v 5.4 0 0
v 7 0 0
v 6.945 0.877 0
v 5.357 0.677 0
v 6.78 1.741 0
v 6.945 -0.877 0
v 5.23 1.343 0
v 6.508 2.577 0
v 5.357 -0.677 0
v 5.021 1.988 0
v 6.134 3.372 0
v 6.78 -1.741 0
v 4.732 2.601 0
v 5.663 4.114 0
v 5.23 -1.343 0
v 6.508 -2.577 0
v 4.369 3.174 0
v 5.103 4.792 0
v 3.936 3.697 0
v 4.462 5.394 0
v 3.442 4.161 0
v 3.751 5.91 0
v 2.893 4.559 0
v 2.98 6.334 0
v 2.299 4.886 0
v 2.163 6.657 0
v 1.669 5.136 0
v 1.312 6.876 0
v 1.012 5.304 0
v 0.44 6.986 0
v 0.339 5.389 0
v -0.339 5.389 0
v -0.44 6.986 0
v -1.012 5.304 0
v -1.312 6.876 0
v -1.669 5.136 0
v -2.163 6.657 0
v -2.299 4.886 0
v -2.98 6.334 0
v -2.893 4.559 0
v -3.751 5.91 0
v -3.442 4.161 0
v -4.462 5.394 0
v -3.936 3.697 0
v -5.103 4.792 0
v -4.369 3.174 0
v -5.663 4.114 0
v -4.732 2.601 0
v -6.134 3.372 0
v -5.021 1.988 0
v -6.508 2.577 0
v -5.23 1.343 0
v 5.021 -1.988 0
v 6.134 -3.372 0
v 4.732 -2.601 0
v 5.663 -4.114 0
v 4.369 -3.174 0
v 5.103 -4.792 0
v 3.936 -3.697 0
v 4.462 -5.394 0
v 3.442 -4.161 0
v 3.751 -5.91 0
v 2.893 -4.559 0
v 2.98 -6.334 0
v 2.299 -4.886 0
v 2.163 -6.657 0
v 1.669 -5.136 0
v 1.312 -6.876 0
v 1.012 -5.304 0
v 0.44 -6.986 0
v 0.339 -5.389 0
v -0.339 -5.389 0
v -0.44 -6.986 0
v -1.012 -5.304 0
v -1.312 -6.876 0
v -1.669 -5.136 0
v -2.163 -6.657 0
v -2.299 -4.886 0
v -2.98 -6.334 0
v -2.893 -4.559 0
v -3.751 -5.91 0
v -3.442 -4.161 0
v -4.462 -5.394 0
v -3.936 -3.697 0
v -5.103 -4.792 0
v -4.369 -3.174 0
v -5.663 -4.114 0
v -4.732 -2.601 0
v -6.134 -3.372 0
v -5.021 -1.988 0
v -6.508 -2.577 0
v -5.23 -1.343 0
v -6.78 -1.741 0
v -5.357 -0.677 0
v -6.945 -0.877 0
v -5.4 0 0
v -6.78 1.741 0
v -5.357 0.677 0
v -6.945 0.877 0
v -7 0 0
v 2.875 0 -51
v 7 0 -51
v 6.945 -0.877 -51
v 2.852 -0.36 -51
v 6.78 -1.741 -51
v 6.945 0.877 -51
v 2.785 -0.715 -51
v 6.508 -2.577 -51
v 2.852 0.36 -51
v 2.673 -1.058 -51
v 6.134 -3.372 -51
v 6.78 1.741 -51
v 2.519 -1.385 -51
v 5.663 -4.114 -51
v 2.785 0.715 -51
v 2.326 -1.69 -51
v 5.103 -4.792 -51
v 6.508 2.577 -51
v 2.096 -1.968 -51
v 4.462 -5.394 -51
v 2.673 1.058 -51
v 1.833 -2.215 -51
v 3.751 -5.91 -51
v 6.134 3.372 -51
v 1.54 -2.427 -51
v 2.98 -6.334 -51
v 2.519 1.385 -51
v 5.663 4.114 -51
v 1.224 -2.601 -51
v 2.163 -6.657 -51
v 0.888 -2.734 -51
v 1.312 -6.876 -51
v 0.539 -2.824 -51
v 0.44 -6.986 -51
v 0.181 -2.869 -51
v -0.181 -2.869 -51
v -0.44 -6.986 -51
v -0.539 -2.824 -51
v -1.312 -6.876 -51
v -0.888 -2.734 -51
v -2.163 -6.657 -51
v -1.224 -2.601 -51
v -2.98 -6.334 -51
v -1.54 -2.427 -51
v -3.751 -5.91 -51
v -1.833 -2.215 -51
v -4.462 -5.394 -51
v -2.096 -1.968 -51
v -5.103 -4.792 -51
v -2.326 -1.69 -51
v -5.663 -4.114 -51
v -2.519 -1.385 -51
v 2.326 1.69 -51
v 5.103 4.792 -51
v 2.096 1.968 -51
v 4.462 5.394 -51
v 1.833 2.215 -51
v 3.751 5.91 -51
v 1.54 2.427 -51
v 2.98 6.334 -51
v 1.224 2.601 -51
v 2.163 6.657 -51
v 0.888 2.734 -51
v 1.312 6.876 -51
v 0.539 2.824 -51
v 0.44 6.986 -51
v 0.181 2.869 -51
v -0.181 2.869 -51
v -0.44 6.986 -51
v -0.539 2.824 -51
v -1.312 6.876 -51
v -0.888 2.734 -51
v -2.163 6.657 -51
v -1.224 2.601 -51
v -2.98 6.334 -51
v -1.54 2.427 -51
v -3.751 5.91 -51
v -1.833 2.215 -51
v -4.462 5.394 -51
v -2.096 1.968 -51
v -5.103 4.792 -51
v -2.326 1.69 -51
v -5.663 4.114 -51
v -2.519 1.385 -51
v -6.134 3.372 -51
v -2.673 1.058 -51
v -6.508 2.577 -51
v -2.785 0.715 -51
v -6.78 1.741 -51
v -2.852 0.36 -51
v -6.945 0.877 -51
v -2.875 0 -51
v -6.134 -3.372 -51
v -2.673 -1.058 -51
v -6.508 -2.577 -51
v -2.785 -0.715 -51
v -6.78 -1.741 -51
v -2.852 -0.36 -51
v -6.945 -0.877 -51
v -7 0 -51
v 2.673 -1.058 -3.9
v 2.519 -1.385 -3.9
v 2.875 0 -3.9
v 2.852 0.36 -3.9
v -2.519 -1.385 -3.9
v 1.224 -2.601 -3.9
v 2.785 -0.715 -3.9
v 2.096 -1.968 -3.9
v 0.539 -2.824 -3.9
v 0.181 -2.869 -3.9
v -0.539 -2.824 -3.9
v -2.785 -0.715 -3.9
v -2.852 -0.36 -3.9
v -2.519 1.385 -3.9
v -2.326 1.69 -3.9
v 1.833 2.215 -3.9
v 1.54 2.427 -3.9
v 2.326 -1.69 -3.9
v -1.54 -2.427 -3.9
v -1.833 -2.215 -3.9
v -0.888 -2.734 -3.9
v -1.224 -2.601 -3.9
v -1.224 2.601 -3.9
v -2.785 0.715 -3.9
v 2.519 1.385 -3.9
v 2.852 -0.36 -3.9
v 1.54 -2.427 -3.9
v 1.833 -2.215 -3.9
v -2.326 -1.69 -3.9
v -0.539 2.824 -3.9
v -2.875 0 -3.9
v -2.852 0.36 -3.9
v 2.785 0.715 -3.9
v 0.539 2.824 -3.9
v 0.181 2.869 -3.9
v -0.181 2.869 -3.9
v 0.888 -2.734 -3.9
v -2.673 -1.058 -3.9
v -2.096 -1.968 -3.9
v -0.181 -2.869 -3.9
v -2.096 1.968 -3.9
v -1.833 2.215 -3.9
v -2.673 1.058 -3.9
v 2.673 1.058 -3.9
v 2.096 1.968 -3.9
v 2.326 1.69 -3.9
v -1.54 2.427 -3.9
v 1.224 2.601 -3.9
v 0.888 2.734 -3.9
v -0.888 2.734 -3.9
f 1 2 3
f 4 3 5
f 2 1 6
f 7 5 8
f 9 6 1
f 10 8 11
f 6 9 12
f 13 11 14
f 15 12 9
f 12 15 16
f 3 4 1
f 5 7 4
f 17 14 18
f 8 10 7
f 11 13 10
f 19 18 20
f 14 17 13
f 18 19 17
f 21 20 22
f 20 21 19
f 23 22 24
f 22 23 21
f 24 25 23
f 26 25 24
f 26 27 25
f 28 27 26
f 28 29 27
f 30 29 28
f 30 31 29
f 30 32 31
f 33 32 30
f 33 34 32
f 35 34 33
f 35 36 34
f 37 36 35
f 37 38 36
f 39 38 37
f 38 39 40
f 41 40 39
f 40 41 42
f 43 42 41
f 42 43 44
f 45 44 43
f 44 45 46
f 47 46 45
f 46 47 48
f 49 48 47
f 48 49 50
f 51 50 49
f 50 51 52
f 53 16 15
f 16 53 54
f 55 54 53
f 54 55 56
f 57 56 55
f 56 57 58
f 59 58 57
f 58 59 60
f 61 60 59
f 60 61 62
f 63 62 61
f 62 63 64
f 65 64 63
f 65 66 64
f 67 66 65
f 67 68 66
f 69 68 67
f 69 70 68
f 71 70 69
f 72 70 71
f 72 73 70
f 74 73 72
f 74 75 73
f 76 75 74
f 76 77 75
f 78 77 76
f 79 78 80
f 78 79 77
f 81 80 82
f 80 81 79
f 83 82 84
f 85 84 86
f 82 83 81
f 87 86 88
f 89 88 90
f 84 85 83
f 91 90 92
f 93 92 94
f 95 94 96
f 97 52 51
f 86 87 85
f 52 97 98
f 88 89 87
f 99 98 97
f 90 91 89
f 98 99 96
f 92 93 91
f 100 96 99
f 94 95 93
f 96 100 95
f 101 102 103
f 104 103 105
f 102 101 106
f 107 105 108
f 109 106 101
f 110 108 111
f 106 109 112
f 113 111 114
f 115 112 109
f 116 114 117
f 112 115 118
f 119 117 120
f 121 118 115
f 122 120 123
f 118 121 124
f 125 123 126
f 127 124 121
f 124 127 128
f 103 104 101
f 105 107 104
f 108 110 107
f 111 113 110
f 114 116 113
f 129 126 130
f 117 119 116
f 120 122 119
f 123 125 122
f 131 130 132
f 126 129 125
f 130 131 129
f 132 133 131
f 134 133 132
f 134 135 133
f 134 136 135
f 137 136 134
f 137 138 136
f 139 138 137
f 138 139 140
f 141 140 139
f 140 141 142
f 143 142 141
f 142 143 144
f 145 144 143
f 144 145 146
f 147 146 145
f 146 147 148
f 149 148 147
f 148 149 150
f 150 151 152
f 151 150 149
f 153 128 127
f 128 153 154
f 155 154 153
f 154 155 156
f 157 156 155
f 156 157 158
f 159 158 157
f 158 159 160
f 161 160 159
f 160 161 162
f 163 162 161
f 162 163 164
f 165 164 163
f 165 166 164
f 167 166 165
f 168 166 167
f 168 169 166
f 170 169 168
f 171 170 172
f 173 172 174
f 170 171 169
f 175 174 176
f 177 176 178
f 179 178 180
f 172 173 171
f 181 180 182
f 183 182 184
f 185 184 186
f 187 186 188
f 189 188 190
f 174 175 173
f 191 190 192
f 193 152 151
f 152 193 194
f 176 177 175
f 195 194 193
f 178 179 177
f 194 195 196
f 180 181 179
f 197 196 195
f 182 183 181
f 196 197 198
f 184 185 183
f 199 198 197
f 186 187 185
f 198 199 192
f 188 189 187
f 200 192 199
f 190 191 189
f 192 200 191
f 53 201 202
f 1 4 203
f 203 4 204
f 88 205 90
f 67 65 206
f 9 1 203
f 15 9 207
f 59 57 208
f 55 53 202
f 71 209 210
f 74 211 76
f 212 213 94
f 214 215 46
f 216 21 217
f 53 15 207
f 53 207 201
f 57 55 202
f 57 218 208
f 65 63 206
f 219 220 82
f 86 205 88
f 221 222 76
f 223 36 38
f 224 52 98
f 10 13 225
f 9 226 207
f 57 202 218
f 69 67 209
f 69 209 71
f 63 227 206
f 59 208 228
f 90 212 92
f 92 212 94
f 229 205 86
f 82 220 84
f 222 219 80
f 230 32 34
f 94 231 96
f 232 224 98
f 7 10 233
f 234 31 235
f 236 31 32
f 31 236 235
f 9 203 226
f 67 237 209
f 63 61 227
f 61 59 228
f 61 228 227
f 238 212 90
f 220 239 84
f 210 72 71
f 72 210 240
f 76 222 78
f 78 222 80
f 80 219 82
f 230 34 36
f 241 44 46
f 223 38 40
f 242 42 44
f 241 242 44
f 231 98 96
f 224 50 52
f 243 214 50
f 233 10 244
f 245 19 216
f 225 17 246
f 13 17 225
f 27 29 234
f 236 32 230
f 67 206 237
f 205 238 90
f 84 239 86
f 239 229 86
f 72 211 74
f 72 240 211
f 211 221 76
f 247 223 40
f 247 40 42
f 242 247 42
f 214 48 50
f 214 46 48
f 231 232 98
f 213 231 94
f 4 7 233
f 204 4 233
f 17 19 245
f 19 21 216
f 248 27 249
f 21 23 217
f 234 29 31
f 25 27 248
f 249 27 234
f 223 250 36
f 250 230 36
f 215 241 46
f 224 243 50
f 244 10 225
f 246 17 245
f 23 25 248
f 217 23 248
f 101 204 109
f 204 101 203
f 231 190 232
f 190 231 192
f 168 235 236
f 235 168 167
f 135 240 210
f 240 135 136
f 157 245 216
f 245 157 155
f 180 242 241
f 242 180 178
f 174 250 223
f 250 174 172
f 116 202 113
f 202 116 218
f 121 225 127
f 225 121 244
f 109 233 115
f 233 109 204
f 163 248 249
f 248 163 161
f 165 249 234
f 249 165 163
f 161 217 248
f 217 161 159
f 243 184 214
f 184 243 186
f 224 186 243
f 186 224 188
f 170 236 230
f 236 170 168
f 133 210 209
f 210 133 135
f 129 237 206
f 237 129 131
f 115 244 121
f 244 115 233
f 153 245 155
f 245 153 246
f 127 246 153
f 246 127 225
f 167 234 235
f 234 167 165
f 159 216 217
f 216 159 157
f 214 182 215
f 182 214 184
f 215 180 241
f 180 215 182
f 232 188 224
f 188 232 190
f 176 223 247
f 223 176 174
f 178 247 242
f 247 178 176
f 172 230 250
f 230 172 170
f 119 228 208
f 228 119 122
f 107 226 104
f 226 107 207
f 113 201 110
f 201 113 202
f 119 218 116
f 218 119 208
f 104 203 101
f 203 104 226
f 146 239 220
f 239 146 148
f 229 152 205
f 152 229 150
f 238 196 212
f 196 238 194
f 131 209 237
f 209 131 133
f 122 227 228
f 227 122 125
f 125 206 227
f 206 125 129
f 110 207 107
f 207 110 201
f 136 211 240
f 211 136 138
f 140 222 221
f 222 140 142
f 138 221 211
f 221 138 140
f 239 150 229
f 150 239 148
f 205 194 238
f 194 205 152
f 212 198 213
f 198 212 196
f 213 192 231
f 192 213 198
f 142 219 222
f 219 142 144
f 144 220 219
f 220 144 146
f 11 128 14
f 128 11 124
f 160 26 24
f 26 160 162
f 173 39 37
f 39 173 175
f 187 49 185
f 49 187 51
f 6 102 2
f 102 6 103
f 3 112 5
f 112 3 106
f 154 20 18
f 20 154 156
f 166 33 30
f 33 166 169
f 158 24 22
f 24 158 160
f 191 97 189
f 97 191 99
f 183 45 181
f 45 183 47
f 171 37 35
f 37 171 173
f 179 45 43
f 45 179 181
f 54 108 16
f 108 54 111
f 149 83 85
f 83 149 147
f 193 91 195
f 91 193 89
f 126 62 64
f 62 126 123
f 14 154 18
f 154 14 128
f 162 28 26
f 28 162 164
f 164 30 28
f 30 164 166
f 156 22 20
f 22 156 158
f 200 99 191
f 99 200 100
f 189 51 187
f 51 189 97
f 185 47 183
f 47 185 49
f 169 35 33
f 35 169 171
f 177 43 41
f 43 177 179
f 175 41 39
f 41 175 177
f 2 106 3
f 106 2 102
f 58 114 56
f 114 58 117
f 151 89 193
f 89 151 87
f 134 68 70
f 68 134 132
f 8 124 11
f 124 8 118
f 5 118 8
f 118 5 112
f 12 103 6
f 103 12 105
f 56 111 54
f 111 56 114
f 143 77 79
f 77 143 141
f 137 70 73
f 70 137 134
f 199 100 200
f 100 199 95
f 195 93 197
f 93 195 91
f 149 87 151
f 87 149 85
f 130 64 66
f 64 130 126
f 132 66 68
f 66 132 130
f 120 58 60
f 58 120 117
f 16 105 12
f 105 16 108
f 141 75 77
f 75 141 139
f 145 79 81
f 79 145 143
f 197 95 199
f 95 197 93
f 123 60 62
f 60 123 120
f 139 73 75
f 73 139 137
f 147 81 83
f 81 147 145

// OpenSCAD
$fn = 50;


difference() {
	union() {
		translate(v = [0, 0, -51.0000000000]) {
			cylinder(h = 51, r = 7.0000000000);
		}
		cylinder(h = 0, r = 13.0000000000);
	}
	union() {
		translate(v = [0, 0, 0]) {
			rotate(a = [0, 0, 0]) {
				difference() {
					union() {
						#translate(v = [0, 0, -51.0000000000]) {
							cylinder(h = 51, r = 2.6000000000);
						}
						#translate(v = [0, 0, -3.9000000000]) {
							cylinder(h = 3.9000000000, r = 7.0000000000, r1 = 2.8750000000, r2 = 5.4000000000);
						}
						#translate(v = [0, 0, -51.0000000000]) {
							cylinder(h = 51, r = 2.8750000000);
						}
						#translate(v = [0, 0, -51.0000000000]) {
							cylinder(h = 51, r = 2.6000000000);
						}
					}
					union();
				}
			}
		}
	}
}
